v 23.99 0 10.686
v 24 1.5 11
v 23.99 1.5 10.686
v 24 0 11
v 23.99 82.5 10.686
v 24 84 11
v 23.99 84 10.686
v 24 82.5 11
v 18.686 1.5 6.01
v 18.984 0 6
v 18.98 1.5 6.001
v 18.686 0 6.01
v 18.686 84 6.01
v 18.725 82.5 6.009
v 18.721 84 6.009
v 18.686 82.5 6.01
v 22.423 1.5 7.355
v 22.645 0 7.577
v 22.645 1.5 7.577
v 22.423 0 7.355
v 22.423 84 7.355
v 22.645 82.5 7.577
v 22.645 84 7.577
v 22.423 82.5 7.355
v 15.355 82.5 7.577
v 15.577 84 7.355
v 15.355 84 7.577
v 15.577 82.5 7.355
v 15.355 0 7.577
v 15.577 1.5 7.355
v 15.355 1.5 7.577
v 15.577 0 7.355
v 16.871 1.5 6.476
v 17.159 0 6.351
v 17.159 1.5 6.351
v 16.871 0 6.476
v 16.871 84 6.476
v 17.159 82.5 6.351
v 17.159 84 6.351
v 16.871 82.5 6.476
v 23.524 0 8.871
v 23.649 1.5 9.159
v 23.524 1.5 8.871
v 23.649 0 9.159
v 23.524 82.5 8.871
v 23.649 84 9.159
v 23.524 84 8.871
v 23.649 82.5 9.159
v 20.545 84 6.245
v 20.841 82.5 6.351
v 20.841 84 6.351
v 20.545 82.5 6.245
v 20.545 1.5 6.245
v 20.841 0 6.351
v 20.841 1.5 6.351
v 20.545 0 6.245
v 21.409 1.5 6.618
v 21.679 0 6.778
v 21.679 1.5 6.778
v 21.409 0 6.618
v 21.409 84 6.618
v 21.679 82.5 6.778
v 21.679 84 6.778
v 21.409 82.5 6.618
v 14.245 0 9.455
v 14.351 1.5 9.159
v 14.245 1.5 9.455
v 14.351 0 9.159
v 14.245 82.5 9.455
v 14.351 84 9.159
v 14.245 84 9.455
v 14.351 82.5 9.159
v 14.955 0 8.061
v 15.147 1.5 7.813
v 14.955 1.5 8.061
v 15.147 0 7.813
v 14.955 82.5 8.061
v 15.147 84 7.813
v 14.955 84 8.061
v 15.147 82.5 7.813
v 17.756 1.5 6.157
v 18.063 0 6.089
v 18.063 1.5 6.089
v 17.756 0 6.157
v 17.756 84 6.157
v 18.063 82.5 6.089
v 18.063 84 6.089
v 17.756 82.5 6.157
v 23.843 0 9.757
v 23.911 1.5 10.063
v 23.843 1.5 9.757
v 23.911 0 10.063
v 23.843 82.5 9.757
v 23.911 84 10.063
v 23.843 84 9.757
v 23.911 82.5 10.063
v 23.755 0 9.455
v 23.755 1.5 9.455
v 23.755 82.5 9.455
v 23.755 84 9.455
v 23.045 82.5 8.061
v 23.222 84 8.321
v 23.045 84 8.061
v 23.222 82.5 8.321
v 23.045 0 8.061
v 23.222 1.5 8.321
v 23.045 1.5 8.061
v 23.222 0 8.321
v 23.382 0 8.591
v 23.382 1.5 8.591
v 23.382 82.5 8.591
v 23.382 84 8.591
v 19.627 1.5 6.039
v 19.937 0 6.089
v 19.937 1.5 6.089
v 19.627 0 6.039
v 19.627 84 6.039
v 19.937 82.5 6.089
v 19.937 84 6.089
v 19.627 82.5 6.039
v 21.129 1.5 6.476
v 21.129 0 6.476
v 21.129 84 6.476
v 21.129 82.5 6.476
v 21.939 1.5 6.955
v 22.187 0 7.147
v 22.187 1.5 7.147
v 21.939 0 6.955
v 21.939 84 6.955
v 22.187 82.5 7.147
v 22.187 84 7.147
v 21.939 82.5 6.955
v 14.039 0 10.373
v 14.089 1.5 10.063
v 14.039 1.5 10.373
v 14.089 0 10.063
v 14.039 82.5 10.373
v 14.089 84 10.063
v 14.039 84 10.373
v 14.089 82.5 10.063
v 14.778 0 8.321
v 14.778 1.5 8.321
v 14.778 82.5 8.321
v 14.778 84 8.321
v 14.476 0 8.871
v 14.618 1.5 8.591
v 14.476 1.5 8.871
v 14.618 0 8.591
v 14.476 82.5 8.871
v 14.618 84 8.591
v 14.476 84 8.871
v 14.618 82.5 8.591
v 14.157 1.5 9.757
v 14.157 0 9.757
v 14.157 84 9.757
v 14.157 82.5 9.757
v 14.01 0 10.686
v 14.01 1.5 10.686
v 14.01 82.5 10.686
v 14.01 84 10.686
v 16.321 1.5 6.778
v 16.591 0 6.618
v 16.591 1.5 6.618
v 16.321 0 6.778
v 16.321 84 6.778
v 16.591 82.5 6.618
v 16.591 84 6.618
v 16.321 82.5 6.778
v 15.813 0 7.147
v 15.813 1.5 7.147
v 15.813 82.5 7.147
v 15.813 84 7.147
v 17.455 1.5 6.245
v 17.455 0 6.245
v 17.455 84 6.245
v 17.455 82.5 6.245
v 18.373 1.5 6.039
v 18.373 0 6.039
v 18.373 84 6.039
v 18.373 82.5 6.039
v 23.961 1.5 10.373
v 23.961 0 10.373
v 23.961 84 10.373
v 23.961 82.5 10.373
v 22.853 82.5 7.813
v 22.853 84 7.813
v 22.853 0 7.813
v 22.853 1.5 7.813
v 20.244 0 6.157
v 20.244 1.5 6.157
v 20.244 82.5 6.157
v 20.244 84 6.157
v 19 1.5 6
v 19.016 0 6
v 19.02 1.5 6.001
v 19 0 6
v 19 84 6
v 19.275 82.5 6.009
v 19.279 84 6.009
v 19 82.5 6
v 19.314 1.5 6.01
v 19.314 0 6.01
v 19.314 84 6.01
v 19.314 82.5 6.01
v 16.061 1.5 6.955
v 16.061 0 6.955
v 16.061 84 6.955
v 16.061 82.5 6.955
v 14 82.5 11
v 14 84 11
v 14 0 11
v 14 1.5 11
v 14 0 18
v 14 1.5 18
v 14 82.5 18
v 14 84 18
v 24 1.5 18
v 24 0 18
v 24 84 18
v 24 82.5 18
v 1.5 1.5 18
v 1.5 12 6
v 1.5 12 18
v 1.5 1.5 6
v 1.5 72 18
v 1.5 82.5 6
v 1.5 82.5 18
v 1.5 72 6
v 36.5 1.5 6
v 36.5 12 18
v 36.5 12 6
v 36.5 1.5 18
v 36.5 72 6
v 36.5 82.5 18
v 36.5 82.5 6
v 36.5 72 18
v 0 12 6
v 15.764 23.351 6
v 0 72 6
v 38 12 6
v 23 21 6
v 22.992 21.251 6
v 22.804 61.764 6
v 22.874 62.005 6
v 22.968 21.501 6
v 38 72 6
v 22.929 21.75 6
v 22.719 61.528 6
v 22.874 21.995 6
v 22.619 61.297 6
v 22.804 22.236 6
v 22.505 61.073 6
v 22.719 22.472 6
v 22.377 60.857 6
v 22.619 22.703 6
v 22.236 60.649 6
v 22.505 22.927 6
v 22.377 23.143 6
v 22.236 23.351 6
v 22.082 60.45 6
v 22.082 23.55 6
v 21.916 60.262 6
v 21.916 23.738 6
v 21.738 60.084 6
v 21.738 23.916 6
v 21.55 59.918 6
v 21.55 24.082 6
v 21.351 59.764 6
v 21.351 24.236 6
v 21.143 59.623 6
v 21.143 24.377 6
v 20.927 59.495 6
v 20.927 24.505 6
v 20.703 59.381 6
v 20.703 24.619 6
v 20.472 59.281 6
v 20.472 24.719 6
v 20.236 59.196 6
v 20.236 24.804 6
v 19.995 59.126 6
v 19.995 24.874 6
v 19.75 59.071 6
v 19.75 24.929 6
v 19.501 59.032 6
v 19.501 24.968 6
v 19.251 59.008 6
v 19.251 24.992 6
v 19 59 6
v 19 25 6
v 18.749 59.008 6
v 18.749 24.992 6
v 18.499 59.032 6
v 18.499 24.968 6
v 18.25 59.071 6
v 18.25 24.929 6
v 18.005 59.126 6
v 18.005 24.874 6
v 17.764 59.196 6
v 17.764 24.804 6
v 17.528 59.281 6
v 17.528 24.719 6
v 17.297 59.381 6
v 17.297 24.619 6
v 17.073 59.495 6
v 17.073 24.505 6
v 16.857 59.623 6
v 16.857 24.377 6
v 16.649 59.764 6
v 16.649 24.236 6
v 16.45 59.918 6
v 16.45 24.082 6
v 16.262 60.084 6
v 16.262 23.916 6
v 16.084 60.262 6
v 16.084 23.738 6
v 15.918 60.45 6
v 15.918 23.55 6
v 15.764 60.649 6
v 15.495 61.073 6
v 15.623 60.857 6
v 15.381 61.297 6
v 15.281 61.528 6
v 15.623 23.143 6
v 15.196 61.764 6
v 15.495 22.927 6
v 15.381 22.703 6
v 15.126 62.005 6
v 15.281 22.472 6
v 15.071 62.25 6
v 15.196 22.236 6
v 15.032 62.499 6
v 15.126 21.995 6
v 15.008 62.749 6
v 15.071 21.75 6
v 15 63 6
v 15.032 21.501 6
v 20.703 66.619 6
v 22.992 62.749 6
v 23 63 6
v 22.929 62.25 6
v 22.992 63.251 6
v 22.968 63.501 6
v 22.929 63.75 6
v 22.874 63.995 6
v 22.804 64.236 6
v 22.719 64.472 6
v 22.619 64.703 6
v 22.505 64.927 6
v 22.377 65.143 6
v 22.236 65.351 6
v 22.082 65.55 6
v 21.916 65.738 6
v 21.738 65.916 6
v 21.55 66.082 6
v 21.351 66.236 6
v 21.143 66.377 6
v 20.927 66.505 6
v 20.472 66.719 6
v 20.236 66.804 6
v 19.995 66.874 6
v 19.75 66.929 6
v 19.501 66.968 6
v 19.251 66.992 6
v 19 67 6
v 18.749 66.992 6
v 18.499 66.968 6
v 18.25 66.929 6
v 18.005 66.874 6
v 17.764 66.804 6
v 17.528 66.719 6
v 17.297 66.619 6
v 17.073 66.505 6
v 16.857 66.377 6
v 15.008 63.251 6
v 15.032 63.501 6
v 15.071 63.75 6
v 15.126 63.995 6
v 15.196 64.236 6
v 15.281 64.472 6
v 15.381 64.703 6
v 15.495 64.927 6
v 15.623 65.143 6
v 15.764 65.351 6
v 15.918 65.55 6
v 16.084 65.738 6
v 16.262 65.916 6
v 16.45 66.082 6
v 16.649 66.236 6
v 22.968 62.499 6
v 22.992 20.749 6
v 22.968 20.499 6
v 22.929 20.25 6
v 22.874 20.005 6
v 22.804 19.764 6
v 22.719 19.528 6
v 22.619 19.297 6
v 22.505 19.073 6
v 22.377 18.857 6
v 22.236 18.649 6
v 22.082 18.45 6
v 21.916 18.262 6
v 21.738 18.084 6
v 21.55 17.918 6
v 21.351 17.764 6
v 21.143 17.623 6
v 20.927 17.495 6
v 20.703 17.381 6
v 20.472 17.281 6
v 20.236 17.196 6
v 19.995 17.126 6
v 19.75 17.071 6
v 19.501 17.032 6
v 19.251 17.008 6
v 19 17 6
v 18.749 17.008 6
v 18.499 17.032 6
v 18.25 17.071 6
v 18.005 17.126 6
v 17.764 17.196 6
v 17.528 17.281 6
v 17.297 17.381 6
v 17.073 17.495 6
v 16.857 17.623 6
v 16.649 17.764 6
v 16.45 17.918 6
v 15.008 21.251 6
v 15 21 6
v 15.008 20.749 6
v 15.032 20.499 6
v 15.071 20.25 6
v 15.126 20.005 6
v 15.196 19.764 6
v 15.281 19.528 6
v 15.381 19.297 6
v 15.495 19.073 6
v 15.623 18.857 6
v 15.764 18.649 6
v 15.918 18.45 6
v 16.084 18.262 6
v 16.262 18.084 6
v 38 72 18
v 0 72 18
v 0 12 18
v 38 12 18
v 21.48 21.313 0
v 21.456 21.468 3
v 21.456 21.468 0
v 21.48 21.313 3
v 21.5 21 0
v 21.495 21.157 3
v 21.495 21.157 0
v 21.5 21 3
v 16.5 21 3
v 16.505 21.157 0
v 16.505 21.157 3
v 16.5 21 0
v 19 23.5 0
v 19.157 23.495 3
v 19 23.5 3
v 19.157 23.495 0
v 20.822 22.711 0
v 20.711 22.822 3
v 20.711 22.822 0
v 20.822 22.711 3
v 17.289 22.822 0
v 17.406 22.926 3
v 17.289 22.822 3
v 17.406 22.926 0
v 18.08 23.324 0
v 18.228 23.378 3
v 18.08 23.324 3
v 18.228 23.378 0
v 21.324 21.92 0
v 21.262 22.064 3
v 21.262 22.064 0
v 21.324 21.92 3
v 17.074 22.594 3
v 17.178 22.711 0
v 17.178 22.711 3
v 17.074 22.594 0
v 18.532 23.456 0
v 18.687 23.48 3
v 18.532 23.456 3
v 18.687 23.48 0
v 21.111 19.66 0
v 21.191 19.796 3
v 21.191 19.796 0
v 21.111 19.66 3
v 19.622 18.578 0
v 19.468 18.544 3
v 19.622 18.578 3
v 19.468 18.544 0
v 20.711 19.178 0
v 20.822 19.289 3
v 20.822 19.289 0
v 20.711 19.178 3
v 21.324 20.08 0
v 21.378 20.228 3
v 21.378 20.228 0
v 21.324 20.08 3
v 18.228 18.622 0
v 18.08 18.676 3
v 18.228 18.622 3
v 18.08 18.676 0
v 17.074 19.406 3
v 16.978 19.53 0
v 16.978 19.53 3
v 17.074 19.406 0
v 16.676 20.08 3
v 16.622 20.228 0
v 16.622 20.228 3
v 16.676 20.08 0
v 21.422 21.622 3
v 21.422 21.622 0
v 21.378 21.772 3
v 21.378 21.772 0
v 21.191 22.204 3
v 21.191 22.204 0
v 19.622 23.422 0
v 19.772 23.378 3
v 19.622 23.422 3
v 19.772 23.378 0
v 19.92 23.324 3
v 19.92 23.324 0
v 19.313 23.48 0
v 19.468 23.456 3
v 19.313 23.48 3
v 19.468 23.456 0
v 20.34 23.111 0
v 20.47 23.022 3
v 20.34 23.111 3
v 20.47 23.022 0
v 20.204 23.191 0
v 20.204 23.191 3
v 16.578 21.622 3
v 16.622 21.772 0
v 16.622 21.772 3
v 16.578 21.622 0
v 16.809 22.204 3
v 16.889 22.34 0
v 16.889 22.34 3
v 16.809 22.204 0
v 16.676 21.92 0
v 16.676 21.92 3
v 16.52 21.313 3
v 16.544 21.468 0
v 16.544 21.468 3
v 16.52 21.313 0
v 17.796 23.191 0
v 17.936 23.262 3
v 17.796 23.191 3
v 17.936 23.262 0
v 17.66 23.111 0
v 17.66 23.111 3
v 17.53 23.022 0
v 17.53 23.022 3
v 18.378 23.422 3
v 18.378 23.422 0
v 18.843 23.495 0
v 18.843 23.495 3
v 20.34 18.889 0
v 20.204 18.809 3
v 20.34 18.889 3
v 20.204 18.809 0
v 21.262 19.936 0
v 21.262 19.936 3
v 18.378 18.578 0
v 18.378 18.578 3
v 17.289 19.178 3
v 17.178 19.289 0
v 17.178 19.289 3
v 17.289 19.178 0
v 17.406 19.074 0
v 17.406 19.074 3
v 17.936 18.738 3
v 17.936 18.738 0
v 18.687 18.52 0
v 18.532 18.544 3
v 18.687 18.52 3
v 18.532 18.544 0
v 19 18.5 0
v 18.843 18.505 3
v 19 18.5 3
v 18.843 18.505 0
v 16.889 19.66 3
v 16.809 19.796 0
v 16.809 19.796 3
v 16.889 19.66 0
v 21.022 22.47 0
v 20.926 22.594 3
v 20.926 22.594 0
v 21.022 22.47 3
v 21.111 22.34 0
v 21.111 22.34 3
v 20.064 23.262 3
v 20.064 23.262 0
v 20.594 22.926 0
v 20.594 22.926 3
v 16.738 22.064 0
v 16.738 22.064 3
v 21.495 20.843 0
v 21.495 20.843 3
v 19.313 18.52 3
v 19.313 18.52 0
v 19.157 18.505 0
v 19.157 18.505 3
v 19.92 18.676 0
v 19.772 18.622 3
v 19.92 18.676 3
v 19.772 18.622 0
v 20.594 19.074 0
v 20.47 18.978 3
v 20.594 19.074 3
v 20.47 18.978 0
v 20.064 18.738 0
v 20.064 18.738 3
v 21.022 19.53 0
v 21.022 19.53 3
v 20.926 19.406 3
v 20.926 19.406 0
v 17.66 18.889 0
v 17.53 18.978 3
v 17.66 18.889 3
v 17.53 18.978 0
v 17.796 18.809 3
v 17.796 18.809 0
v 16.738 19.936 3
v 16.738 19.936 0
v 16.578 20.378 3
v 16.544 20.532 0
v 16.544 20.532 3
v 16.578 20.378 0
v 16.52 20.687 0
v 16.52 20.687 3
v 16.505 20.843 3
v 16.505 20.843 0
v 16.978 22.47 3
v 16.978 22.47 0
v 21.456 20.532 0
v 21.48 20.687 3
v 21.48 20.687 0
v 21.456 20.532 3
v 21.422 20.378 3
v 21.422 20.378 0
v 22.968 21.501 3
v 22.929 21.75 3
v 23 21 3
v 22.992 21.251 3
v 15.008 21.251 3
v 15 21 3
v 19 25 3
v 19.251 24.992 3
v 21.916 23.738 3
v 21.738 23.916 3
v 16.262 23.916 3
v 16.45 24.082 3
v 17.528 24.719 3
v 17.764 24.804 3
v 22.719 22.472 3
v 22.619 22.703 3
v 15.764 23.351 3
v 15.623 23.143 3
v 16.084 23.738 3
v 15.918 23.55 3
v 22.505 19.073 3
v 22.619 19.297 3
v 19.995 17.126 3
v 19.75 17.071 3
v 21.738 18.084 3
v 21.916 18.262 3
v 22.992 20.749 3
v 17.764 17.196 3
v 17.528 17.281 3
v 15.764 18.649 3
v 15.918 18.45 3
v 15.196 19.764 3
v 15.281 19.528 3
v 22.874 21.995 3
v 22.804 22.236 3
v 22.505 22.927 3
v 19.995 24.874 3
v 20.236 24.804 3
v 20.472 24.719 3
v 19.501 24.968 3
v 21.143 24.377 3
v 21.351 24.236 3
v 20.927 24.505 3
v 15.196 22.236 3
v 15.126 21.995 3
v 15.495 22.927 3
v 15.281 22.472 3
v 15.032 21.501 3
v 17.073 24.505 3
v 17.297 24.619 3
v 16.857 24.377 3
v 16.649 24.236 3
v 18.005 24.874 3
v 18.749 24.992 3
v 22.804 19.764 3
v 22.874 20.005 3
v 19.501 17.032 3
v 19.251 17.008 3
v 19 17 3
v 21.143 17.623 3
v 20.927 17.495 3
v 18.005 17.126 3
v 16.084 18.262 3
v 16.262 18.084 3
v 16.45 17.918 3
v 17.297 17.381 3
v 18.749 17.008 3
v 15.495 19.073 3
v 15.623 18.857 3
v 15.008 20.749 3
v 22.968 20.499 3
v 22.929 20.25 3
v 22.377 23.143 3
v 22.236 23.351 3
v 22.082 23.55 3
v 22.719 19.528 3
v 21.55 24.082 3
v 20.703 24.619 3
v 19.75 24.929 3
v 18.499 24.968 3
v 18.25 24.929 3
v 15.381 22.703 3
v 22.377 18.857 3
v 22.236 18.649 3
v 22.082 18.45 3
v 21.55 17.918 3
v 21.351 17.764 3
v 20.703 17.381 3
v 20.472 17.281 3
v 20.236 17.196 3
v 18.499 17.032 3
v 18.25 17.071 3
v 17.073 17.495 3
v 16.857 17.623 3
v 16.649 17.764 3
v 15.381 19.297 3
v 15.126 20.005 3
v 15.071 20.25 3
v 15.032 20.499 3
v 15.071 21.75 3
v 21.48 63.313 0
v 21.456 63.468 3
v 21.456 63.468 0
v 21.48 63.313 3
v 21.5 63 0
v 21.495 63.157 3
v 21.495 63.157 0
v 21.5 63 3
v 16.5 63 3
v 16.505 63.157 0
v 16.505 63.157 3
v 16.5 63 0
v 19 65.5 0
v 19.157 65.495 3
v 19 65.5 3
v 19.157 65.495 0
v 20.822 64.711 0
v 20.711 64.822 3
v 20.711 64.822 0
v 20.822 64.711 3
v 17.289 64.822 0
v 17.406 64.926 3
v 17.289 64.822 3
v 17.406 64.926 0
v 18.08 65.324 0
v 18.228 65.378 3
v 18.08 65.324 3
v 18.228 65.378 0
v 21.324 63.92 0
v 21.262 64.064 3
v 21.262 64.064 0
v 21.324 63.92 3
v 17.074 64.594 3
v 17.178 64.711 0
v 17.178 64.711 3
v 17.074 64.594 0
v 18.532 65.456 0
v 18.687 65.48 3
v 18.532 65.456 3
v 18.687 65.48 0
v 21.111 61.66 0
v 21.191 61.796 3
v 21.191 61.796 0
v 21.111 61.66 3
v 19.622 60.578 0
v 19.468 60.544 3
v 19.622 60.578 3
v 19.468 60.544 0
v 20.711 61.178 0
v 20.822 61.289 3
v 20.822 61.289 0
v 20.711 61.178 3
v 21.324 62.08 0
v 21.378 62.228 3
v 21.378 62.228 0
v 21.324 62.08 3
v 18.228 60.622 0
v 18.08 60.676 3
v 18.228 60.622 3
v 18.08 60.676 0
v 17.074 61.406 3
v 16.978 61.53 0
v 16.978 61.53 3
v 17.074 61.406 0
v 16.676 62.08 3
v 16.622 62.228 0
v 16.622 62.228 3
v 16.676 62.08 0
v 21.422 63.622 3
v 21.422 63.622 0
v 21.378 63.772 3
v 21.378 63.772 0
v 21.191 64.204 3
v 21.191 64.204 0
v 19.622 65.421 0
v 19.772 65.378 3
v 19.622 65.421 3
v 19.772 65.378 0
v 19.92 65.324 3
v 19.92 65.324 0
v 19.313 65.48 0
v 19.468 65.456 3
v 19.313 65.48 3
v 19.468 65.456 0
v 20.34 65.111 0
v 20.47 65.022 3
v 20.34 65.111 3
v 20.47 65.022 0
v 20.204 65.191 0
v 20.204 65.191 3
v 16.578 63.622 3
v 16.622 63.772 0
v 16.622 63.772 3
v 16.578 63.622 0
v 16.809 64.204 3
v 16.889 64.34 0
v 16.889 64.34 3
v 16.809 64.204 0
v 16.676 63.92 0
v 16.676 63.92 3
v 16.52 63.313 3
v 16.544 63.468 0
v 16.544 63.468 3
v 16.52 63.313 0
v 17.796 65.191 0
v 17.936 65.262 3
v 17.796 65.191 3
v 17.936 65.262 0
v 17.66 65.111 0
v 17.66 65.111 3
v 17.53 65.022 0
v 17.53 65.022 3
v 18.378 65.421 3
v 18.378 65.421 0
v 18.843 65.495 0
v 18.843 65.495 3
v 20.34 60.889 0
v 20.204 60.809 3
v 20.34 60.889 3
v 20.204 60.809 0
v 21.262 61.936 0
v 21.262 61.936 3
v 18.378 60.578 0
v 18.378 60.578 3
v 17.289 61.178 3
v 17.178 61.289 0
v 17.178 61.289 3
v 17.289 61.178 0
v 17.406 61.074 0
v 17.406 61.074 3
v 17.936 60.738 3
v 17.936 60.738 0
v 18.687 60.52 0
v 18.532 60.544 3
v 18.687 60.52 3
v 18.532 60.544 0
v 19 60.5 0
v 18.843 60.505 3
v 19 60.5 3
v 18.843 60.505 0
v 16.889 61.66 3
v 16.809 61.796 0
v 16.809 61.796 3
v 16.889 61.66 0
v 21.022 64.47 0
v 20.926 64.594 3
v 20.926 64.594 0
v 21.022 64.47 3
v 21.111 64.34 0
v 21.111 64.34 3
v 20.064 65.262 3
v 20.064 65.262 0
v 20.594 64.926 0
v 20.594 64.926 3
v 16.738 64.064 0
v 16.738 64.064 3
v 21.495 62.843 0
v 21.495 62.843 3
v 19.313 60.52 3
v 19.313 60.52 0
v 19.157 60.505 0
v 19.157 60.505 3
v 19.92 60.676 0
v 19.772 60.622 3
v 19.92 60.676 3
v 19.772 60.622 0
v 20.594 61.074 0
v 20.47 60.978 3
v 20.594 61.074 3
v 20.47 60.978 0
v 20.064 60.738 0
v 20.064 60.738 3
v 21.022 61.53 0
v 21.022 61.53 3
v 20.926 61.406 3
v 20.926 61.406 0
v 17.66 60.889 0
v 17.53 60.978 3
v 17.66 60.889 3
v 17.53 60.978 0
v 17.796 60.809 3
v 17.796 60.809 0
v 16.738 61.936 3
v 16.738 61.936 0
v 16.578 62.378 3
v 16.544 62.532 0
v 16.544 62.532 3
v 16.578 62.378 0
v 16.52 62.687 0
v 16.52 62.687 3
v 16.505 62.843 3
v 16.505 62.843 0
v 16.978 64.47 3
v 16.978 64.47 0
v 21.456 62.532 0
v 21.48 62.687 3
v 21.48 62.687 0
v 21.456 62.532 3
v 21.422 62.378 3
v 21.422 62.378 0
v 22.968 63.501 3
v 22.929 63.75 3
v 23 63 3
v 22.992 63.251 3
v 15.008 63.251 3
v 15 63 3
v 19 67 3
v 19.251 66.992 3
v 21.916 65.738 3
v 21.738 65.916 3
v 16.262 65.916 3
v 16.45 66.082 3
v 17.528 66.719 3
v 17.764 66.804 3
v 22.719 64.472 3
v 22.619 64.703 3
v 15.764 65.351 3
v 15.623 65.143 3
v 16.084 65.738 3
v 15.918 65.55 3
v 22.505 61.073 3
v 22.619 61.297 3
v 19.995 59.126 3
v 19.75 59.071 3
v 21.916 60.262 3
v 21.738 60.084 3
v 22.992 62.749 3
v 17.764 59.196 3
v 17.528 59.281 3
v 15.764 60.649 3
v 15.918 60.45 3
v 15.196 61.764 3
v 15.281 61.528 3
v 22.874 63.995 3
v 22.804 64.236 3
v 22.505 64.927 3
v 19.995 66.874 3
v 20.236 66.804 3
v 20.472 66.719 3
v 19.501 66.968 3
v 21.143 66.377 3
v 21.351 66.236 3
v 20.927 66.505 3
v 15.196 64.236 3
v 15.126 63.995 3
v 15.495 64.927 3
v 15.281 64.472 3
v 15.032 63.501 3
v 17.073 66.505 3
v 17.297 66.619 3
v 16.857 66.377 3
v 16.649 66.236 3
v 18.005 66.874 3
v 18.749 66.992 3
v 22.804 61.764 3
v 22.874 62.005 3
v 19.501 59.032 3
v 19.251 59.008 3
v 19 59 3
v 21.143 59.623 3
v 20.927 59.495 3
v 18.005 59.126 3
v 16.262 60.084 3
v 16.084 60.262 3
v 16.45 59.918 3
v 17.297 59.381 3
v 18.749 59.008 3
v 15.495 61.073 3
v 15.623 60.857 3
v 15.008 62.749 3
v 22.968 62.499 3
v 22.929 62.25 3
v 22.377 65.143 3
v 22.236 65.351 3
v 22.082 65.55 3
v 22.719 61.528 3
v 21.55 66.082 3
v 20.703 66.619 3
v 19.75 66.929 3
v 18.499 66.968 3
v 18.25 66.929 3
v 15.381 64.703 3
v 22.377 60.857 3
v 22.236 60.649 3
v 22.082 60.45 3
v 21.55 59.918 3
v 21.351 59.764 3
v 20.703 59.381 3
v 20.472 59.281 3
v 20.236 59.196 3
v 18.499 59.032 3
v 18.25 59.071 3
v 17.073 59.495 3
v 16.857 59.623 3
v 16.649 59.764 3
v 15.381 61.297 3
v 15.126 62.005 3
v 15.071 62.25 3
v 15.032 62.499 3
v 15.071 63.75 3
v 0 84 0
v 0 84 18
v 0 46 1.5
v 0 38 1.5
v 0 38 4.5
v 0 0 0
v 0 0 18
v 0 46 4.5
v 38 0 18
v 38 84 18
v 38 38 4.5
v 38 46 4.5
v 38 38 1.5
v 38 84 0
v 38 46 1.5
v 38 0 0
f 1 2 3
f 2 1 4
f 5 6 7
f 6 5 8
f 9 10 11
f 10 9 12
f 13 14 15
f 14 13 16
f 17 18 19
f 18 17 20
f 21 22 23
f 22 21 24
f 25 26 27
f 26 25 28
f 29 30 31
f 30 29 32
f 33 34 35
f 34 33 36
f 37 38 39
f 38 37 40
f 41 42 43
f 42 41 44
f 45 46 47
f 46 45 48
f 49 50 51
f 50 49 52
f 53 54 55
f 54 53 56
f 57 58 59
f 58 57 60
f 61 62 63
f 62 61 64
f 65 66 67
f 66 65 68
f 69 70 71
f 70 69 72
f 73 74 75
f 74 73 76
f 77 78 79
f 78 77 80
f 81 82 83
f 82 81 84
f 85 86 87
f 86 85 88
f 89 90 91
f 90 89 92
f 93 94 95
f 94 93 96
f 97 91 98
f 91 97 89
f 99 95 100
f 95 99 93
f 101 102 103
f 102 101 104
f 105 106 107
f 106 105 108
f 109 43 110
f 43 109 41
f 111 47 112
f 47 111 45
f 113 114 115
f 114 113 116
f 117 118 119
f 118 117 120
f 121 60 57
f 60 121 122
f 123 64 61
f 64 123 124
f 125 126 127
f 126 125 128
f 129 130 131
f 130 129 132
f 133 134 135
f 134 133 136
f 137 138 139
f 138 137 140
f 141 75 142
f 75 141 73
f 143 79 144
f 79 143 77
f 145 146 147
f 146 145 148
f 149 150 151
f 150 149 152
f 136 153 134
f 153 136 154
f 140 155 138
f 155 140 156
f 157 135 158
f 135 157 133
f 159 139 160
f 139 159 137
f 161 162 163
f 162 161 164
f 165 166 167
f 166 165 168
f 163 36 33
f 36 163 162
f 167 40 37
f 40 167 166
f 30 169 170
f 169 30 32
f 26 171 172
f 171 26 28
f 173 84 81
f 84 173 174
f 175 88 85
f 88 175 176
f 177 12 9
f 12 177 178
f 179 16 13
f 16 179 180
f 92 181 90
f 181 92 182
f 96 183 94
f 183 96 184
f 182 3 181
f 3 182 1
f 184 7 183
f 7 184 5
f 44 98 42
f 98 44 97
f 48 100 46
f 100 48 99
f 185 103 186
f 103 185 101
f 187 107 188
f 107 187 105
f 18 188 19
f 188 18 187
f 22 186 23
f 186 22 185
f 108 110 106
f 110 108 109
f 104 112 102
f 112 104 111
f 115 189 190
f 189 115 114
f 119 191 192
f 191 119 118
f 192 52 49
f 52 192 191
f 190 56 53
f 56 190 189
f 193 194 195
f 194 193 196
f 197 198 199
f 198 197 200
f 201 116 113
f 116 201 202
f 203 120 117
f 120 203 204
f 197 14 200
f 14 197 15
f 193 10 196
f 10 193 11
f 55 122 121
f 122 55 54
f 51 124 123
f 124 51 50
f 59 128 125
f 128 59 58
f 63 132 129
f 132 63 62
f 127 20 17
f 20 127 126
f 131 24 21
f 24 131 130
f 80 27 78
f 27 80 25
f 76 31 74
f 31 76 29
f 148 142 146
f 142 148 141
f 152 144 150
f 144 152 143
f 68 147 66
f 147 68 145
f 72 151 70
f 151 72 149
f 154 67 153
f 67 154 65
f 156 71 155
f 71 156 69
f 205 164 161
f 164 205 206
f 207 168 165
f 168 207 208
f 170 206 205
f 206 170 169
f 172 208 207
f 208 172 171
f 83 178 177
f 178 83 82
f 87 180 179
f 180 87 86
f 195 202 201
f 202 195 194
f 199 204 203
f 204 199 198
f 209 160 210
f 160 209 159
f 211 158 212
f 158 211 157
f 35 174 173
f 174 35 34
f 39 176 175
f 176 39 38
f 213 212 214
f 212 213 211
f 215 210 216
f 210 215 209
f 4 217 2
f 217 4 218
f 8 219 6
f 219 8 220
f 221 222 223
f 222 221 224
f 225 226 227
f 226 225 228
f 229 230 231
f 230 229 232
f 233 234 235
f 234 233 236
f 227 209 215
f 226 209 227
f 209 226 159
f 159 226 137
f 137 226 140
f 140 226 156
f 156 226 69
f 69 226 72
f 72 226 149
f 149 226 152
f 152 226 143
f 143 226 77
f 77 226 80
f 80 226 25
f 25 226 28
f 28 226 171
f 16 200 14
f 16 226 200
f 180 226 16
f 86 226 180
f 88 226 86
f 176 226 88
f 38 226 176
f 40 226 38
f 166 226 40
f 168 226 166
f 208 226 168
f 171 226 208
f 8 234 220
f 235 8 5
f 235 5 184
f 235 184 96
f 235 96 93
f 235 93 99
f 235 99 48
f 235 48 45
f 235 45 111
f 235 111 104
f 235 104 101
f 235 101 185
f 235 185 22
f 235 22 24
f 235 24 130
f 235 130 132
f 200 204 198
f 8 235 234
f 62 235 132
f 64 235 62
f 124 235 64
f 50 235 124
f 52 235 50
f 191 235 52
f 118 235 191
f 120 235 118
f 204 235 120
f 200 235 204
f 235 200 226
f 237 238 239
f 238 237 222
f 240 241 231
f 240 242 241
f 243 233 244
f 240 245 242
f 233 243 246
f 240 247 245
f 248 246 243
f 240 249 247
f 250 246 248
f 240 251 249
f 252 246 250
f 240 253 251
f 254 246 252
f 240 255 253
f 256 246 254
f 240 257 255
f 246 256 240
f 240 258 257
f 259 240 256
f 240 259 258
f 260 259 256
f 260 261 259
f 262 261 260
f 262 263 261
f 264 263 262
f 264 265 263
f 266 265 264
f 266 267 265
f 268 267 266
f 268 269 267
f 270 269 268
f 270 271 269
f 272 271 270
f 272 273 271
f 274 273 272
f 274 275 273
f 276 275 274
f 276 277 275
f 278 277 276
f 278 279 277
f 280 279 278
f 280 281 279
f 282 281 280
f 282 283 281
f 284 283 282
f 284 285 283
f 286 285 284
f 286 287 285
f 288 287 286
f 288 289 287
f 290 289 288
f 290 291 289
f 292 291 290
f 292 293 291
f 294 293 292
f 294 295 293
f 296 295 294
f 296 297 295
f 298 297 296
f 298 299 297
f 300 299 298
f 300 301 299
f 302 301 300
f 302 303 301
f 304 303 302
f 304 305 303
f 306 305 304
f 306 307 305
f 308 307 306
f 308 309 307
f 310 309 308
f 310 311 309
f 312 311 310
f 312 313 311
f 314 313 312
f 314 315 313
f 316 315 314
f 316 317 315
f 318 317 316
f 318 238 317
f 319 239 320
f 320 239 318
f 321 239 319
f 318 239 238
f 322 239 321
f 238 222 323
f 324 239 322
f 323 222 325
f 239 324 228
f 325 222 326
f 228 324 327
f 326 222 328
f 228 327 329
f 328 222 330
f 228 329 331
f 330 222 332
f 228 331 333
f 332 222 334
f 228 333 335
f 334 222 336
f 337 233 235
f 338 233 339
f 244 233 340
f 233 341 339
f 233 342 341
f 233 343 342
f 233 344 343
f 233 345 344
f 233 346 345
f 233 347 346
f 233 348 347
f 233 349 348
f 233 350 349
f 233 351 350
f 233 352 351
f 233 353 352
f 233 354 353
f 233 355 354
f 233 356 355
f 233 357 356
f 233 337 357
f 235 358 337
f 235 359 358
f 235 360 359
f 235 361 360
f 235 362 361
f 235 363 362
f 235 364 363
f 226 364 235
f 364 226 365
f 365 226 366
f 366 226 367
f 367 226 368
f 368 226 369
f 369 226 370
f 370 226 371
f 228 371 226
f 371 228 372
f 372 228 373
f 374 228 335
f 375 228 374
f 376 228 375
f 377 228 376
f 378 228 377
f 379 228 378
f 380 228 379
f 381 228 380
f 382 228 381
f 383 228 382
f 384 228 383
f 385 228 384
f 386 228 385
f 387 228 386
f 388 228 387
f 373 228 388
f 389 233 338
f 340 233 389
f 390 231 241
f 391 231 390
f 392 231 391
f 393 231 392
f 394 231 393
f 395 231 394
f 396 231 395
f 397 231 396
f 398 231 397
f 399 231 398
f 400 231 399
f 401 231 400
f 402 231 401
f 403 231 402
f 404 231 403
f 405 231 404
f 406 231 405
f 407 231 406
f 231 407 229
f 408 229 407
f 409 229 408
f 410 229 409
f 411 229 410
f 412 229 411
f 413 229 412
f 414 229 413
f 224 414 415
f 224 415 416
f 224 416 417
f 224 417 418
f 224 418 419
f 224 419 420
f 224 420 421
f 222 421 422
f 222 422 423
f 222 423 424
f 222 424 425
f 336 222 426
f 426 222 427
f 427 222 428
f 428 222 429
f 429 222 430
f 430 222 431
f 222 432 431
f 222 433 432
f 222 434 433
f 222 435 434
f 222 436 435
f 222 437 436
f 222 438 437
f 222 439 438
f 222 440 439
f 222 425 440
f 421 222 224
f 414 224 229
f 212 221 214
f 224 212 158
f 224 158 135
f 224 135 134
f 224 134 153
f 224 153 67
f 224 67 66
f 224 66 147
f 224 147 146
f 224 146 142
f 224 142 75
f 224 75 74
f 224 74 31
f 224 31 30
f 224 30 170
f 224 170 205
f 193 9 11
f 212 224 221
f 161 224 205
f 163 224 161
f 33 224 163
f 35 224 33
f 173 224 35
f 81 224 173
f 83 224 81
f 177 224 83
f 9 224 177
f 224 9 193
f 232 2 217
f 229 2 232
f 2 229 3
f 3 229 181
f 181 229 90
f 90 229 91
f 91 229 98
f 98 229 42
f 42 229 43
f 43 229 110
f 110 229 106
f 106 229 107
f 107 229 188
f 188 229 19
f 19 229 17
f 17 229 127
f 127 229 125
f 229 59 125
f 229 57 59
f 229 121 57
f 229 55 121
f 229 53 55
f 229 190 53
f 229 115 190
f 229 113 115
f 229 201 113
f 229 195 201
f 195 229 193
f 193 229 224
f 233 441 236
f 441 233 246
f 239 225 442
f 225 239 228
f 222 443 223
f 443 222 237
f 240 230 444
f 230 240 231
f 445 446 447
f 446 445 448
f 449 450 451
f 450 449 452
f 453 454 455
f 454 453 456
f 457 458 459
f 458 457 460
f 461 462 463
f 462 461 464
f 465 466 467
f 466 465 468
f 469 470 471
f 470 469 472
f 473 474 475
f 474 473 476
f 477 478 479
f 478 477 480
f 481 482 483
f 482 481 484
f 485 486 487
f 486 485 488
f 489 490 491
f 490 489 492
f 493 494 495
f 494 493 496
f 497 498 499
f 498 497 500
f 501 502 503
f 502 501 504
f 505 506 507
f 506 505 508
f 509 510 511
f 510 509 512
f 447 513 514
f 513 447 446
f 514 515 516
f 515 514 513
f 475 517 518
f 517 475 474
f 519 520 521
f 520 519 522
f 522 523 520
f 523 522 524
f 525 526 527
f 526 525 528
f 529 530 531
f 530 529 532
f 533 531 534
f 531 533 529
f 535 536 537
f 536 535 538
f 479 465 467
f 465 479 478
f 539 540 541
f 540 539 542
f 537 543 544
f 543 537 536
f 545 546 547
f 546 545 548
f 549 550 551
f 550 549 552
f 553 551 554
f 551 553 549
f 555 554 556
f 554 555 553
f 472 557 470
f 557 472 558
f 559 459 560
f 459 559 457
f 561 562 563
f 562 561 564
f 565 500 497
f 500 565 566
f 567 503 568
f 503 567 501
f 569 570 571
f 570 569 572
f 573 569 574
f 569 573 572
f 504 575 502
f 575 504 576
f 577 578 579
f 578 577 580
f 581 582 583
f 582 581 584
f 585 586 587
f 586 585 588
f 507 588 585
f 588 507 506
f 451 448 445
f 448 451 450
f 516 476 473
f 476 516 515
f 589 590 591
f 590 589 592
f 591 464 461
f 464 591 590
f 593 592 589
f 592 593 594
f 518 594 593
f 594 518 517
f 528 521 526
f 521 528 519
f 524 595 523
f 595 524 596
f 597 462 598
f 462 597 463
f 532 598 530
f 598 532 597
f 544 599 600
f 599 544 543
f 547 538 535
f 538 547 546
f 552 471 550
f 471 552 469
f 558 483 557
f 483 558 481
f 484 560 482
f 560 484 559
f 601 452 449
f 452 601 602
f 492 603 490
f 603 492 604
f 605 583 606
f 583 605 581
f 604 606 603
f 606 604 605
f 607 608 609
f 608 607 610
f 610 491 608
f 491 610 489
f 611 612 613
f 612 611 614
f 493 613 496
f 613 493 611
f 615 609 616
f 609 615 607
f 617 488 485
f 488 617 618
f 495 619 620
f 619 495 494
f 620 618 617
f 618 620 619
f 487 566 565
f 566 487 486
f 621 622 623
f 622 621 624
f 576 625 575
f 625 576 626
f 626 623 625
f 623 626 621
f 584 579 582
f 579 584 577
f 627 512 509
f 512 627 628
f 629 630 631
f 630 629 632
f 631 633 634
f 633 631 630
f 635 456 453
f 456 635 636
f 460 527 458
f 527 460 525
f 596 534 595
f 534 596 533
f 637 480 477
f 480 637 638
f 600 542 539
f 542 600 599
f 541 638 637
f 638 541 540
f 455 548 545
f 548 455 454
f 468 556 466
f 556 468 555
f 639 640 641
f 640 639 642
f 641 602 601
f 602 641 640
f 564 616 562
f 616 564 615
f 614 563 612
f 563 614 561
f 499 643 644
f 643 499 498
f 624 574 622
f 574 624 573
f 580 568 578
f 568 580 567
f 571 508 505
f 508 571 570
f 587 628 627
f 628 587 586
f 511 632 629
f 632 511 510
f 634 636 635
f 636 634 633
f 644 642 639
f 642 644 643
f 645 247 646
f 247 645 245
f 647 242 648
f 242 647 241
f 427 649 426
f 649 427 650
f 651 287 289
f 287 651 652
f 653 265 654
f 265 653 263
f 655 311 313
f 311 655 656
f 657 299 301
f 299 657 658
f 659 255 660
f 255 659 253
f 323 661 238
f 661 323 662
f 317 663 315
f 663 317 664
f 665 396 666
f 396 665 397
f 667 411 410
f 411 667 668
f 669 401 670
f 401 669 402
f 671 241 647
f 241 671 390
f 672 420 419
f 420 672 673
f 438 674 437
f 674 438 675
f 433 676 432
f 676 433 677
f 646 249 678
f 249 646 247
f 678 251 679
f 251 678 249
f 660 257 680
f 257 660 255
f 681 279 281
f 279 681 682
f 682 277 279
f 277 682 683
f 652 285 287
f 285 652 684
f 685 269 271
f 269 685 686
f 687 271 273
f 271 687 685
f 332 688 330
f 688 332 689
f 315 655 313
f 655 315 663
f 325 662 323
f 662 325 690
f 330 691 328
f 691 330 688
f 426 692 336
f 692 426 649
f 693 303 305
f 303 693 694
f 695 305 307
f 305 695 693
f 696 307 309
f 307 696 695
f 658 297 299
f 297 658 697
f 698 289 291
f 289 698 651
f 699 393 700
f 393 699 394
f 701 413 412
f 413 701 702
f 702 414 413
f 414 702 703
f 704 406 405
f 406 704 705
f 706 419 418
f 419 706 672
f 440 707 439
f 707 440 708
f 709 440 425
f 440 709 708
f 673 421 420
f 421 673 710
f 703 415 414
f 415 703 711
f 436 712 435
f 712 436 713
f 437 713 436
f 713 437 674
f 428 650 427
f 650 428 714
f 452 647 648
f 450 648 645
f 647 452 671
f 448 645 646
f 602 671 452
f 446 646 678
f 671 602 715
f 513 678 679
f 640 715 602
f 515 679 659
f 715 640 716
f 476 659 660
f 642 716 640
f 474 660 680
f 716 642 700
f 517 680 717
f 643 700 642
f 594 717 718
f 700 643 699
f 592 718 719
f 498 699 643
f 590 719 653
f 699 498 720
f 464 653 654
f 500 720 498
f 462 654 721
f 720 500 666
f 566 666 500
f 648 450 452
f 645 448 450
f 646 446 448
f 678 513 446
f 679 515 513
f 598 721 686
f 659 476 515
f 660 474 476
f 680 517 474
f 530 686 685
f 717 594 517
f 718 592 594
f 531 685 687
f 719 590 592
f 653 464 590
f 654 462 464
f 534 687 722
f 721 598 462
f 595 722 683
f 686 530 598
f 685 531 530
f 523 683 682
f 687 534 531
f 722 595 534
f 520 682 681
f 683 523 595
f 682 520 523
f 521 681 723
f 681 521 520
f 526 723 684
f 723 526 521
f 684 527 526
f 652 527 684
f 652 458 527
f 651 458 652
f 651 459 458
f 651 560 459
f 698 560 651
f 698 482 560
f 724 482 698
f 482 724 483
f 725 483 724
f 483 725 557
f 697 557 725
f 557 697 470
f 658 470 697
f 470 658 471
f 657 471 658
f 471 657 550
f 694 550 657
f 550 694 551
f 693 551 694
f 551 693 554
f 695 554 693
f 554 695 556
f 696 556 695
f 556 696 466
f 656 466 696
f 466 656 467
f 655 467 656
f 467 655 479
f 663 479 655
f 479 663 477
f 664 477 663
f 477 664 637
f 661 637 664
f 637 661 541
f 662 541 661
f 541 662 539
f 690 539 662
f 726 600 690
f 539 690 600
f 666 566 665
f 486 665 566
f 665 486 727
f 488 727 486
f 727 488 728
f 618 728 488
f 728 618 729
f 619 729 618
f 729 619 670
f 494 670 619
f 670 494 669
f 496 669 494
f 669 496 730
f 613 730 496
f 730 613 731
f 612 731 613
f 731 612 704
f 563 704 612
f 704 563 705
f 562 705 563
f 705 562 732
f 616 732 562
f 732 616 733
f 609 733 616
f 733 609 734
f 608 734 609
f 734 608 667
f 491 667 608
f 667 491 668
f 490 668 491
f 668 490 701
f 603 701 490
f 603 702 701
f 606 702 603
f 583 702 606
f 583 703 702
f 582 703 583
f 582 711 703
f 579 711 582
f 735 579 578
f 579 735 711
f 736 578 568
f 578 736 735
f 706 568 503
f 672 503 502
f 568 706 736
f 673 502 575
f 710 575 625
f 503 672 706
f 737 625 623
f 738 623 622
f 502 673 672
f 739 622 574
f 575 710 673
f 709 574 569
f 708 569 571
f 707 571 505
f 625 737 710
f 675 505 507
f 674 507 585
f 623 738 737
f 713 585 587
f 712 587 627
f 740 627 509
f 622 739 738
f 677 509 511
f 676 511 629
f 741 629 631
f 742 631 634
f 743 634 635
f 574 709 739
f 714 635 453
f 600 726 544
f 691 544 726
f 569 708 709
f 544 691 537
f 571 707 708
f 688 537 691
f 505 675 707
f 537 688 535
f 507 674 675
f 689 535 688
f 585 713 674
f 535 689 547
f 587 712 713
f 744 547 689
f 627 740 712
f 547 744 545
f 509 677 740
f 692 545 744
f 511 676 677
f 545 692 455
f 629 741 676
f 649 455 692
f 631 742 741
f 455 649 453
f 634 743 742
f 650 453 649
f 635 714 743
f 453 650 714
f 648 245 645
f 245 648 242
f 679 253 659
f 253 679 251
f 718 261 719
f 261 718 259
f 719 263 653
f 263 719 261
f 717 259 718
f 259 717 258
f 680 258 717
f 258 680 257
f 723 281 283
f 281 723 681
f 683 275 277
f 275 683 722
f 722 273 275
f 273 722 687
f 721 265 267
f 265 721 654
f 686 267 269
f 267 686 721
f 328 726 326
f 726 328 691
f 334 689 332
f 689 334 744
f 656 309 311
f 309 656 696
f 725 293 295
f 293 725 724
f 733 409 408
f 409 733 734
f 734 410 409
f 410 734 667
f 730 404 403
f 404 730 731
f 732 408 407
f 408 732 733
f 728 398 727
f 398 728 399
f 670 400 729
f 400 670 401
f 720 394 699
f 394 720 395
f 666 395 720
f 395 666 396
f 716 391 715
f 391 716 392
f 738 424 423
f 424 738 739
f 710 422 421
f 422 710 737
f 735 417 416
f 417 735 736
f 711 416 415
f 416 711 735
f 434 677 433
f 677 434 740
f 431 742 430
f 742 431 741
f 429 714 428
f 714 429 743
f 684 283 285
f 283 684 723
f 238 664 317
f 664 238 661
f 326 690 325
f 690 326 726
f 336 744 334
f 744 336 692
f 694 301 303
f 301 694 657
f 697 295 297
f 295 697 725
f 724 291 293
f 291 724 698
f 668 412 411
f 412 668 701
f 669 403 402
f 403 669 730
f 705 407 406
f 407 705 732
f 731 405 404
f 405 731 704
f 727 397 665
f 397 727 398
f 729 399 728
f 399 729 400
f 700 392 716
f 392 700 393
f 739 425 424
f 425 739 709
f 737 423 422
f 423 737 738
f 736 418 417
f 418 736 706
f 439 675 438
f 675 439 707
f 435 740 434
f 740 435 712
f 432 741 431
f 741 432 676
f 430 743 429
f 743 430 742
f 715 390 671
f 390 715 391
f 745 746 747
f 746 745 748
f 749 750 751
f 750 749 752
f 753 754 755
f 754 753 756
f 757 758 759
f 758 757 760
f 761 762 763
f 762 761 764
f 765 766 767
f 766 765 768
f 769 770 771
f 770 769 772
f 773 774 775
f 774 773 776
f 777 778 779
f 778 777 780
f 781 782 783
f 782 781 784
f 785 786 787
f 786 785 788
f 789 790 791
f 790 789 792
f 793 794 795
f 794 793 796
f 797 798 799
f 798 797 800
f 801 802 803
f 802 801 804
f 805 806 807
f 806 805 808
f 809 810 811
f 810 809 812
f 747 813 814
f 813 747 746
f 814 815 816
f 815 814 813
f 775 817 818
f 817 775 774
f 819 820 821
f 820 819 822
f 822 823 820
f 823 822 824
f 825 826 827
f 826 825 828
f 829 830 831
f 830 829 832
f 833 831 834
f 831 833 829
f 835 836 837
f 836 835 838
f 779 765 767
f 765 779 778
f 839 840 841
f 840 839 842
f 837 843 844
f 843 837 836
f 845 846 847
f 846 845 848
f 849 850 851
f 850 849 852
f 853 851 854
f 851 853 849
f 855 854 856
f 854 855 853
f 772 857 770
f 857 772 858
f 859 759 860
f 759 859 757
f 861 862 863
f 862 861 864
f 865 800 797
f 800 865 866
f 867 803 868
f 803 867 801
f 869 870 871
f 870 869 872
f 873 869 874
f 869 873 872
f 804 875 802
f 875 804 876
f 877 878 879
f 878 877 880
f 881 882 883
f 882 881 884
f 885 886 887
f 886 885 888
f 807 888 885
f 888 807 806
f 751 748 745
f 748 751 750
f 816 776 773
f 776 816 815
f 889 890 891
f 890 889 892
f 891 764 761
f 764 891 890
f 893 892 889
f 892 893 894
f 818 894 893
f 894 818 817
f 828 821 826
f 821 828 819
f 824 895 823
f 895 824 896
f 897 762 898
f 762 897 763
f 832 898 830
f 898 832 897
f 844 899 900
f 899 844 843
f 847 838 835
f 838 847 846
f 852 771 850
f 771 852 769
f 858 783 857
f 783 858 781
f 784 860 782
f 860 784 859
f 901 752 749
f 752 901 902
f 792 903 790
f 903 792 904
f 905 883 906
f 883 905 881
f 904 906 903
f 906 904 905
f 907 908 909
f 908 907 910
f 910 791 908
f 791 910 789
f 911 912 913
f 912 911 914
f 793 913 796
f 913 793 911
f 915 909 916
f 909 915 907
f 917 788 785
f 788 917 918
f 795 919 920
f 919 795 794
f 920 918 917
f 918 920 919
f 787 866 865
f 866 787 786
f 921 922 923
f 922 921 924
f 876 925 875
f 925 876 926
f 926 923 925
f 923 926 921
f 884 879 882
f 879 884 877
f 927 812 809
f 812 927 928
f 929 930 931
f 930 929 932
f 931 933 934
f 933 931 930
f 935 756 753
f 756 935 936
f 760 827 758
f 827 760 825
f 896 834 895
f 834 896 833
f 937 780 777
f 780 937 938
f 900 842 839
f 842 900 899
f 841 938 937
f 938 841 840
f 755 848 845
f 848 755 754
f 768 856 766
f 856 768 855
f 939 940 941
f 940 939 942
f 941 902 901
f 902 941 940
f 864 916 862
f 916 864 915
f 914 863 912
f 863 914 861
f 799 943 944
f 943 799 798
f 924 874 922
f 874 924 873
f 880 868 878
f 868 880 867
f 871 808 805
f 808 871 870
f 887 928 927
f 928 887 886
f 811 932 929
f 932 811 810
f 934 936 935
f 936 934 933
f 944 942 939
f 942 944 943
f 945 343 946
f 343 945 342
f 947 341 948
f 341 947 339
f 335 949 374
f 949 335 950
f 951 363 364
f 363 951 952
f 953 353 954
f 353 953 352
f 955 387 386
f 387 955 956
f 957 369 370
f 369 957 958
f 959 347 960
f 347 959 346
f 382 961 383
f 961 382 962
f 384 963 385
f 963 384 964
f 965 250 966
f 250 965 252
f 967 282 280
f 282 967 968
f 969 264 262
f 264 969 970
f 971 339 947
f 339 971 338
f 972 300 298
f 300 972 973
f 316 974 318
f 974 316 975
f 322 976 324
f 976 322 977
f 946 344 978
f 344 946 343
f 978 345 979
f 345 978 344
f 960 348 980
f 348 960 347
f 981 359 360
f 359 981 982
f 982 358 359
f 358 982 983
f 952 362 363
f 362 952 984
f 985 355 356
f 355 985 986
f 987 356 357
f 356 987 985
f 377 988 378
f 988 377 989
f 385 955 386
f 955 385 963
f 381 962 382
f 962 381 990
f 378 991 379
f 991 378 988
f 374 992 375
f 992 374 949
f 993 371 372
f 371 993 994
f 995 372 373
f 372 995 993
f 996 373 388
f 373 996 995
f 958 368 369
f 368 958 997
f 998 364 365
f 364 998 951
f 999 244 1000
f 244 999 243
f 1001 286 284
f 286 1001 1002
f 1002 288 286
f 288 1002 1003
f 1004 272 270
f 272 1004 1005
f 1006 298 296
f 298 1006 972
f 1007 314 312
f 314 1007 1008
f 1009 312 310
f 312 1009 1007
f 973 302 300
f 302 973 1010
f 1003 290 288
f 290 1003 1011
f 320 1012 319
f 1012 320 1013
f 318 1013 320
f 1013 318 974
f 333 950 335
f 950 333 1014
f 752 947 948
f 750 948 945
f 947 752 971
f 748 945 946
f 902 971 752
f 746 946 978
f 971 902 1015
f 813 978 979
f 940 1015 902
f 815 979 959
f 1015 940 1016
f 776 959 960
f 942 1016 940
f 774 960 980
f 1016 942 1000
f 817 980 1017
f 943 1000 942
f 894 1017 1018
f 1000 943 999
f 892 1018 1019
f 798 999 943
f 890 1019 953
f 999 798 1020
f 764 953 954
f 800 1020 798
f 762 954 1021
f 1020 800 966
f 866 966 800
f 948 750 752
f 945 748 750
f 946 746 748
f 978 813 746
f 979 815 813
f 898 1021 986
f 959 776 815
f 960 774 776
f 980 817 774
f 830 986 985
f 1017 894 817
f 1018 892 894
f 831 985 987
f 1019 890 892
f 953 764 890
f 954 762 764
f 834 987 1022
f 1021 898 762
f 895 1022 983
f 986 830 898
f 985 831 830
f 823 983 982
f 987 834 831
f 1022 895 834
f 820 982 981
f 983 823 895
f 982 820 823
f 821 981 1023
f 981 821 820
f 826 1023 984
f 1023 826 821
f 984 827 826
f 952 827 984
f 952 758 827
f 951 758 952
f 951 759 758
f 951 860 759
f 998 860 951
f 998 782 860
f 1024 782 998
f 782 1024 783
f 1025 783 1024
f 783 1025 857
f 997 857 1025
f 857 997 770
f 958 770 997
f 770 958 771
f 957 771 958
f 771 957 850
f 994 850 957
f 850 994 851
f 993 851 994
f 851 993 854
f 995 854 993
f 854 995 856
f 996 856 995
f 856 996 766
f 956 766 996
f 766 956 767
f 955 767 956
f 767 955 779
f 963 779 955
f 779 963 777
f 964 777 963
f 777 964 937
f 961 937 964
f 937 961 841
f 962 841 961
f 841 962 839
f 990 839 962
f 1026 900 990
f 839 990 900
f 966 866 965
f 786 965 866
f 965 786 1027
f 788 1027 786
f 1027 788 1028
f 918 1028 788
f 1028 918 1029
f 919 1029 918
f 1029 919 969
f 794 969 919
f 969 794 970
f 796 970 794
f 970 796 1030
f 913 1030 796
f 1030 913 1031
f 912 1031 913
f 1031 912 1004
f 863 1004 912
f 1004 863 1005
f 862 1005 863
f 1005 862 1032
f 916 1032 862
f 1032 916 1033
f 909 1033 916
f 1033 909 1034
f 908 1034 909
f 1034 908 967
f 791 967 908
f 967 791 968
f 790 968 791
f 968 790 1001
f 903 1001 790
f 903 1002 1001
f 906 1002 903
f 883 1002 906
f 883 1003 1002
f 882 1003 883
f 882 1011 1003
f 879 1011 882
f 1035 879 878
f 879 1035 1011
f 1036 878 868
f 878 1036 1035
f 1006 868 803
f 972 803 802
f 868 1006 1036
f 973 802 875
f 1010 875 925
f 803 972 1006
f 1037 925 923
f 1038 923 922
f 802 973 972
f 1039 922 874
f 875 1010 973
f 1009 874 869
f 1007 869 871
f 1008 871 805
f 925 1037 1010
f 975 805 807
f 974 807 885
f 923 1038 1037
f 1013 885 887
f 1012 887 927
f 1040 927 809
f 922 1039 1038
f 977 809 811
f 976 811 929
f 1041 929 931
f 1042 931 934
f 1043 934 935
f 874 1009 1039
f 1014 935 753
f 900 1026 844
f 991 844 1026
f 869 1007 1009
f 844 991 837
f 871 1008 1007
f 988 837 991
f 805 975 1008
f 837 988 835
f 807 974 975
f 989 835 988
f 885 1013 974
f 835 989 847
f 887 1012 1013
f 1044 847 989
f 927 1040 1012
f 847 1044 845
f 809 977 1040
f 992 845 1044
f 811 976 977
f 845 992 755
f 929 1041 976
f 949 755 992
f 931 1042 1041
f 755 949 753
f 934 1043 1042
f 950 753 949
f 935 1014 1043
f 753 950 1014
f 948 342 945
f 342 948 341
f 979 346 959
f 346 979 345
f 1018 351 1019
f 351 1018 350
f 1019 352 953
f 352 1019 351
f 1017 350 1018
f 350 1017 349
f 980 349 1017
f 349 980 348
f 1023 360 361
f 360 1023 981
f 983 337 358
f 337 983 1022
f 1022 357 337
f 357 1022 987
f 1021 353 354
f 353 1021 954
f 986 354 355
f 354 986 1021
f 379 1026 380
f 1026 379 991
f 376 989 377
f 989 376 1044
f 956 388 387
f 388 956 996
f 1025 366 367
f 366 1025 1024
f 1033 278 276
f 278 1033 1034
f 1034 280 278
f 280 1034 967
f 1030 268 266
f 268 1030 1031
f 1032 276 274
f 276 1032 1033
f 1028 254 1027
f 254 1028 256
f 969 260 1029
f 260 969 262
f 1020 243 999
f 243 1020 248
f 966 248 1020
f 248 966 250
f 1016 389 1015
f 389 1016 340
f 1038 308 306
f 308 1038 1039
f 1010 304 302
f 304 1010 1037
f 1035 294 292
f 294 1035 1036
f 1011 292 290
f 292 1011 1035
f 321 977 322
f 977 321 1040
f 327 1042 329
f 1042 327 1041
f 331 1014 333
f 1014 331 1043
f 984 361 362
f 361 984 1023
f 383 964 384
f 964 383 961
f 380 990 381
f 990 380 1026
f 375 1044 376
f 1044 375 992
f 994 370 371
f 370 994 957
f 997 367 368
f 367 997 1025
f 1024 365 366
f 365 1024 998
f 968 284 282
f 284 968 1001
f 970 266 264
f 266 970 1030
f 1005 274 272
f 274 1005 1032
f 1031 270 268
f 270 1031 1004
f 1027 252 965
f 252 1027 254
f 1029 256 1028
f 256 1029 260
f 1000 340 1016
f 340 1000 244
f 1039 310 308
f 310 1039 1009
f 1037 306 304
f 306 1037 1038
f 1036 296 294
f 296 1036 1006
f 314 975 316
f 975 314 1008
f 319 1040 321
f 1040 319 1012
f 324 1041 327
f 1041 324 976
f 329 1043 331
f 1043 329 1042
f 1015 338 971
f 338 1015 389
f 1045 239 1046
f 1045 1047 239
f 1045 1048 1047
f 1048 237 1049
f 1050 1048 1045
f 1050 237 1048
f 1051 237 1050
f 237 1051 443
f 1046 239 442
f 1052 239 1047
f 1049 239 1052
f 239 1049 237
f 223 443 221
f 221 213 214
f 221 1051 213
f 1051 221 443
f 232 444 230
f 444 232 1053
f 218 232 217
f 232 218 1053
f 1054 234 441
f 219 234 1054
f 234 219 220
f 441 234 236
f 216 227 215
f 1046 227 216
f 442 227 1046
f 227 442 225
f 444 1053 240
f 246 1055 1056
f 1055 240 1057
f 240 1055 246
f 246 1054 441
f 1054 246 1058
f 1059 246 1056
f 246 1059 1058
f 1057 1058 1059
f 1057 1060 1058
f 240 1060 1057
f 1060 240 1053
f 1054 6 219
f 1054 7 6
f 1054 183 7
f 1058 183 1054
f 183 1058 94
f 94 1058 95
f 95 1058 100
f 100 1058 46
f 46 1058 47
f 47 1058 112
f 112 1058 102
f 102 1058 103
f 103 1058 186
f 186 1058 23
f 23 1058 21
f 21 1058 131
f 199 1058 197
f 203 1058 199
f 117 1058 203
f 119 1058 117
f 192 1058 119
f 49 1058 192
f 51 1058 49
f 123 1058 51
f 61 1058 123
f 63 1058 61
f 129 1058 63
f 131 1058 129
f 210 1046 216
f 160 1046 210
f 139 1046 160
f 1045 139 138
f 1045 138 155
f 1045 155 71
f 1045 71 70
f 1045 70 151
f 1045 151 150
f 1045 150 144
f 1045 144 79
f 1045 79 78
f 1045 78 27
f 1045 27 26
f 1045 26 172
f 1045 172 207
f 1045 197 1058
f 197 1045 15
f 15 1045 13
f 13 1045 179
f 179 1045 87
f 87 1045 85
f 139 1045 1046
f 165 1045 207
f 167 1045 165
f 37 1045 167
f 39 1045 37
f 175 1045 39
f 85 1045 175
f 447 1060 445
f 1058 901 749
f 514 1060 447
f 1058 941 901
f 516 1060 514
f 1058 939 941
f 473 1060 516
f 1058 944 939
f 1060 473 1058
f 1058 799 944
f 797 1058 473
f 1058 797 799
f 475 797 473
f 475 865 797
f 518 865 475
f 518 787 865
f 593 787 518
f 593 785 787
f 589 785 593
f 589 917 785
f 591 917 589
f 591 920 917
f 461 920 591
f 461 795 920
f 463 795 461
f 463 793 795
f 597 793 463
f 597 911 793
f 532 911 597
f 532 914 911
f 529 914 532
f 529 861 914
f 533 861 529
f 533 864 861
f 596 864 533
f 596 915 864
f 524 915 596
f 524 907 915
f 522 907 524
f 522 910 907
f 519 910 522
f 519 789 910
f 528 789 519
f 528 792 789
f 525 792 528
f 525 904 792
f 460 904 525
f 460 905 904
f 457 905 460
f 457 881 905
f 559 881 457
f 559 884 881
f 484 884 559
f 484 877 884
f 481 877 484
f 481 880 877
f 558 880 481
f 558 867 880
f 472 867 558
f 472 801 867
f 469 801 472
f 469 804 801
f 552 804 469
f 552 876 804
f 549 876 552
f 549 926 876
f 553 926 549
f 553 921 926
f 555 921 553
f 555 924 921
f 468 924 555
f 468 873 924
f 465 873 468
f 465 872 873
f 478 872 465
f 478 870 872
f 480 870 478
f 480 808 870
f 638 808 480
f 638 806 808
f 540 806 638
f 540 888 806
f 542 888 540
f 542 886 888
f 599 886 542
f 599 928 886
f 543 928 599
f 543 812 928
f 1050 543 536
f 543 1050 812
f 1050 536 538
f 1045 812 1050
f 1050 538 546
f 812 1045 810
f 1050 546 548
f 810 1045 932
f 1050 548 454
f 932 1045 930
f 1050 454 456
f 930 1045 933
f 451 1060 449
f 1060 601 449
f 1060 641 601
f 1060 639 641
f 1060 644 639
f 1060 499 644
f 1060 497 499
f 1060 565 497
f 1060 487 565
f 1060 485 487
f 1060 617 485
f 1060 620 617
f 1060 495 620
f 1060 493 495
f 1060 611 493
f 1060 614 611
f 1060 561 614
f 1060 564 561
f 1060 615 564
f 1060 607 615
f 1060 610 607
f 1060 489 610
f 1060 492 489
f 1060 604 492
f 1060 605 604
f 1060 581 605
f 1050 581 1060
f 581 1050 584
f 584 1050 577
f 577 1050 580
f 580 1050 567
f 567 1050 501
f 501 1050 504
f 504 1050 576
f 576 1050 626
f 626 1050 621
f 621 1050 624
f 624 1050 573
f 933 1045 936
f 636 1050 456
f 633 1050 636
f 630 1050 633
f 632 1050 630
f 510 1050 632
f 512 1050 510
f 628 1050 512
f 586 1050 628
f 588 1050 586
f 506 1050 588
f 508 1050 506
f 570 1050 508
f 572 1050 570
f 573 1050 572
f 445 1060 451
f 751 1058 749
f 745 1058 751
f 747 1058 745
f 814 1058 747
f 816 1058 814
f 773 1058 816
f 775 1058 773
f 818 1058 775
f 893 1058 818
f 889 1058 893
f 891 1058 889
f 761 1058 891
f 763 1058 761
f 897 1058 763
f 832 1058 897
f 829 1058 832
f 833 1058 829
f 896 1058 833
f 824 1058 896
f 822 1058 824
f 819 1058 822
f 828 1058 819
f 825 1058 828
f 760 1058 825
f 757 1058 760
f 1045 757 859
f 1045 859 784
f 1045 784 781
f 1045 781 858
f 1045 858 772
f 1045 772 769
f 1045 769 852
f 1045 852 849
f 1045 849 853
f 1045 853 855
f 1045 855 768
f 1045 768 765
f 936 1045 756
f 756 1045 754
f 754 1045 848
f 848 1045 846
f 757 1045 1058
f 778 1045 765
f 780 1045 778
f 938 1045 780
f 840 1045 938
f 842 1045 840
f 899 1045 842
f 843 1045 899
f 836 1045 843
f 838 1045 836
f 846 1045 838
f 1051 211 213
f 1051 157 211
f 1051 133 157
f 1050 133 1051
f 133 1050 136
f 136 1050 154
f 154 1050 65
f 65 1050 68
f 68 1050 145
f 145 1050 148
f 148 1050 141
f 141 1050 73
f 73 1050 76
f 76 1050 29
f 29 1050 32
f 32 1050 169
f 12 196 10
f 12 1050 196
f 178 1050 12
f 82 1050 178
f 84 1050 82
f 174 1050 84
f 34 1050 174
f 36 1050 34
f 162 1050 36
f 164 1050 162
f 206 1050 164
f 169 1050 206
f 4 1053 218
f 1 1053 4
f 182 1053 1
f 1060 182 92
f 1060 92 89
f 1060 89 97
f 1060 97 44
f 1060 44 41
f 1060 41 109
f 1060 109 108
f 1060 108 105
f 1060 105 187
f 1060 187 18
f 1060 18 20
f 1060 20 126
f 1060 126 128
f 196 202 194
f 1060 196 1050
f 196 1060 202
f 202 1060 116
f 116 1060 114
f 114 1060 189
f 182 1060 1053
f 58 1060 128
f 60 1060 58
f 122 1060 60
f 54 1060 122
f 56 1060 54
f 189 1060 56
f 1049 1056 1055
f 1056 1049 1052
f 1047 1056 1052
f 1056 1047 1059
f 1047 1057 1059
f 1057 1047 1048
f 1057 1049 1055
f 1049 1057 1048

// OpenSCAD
$fn = 100;

module ScrewHole(){
    union(){
        translate([0, 0, -25]){
            cylinder(d = 5, h = 50);
                
            translate([0, 0, 25]){cylinder(d = 8, h = 25);}
        }
    }
}

module PhillipsHueLEDStripDriverHolder() {
    difference(){
        cube([38, 84, 18]);
            
        translate([0, 0, 2]){
            // Main device cutout
            translate([1.5, 1.5, 4]){
                cube([35, 81, 30]);
            }
               
            // Cord slots
            translate([14, -5, 9]){
               union(){
                    translate([5, 0, 0]){rotate([-90, 0, 0]){
                        cylinder(r=5, h=100);
                    }}
                    cube([10, 100, 30]);
                }
            }
               
            // Side strap slots
            translate([-5, 12, 4]){
                cube([50, 60, 30]);
            }
        }
        
        // Zip tie slot
        translate([-5, 38, 1.5]){
            cube([50, 8, 3]);
        }
        
        // Screw holes
        translate([19, 21, 3]){
            ScrewHole();
        }
        
        // Screw holes
        translate([19, 63, 3]){
            ScrewHole();
        }
    }
}

PhillipsHueLEDStripDriverHolder();
